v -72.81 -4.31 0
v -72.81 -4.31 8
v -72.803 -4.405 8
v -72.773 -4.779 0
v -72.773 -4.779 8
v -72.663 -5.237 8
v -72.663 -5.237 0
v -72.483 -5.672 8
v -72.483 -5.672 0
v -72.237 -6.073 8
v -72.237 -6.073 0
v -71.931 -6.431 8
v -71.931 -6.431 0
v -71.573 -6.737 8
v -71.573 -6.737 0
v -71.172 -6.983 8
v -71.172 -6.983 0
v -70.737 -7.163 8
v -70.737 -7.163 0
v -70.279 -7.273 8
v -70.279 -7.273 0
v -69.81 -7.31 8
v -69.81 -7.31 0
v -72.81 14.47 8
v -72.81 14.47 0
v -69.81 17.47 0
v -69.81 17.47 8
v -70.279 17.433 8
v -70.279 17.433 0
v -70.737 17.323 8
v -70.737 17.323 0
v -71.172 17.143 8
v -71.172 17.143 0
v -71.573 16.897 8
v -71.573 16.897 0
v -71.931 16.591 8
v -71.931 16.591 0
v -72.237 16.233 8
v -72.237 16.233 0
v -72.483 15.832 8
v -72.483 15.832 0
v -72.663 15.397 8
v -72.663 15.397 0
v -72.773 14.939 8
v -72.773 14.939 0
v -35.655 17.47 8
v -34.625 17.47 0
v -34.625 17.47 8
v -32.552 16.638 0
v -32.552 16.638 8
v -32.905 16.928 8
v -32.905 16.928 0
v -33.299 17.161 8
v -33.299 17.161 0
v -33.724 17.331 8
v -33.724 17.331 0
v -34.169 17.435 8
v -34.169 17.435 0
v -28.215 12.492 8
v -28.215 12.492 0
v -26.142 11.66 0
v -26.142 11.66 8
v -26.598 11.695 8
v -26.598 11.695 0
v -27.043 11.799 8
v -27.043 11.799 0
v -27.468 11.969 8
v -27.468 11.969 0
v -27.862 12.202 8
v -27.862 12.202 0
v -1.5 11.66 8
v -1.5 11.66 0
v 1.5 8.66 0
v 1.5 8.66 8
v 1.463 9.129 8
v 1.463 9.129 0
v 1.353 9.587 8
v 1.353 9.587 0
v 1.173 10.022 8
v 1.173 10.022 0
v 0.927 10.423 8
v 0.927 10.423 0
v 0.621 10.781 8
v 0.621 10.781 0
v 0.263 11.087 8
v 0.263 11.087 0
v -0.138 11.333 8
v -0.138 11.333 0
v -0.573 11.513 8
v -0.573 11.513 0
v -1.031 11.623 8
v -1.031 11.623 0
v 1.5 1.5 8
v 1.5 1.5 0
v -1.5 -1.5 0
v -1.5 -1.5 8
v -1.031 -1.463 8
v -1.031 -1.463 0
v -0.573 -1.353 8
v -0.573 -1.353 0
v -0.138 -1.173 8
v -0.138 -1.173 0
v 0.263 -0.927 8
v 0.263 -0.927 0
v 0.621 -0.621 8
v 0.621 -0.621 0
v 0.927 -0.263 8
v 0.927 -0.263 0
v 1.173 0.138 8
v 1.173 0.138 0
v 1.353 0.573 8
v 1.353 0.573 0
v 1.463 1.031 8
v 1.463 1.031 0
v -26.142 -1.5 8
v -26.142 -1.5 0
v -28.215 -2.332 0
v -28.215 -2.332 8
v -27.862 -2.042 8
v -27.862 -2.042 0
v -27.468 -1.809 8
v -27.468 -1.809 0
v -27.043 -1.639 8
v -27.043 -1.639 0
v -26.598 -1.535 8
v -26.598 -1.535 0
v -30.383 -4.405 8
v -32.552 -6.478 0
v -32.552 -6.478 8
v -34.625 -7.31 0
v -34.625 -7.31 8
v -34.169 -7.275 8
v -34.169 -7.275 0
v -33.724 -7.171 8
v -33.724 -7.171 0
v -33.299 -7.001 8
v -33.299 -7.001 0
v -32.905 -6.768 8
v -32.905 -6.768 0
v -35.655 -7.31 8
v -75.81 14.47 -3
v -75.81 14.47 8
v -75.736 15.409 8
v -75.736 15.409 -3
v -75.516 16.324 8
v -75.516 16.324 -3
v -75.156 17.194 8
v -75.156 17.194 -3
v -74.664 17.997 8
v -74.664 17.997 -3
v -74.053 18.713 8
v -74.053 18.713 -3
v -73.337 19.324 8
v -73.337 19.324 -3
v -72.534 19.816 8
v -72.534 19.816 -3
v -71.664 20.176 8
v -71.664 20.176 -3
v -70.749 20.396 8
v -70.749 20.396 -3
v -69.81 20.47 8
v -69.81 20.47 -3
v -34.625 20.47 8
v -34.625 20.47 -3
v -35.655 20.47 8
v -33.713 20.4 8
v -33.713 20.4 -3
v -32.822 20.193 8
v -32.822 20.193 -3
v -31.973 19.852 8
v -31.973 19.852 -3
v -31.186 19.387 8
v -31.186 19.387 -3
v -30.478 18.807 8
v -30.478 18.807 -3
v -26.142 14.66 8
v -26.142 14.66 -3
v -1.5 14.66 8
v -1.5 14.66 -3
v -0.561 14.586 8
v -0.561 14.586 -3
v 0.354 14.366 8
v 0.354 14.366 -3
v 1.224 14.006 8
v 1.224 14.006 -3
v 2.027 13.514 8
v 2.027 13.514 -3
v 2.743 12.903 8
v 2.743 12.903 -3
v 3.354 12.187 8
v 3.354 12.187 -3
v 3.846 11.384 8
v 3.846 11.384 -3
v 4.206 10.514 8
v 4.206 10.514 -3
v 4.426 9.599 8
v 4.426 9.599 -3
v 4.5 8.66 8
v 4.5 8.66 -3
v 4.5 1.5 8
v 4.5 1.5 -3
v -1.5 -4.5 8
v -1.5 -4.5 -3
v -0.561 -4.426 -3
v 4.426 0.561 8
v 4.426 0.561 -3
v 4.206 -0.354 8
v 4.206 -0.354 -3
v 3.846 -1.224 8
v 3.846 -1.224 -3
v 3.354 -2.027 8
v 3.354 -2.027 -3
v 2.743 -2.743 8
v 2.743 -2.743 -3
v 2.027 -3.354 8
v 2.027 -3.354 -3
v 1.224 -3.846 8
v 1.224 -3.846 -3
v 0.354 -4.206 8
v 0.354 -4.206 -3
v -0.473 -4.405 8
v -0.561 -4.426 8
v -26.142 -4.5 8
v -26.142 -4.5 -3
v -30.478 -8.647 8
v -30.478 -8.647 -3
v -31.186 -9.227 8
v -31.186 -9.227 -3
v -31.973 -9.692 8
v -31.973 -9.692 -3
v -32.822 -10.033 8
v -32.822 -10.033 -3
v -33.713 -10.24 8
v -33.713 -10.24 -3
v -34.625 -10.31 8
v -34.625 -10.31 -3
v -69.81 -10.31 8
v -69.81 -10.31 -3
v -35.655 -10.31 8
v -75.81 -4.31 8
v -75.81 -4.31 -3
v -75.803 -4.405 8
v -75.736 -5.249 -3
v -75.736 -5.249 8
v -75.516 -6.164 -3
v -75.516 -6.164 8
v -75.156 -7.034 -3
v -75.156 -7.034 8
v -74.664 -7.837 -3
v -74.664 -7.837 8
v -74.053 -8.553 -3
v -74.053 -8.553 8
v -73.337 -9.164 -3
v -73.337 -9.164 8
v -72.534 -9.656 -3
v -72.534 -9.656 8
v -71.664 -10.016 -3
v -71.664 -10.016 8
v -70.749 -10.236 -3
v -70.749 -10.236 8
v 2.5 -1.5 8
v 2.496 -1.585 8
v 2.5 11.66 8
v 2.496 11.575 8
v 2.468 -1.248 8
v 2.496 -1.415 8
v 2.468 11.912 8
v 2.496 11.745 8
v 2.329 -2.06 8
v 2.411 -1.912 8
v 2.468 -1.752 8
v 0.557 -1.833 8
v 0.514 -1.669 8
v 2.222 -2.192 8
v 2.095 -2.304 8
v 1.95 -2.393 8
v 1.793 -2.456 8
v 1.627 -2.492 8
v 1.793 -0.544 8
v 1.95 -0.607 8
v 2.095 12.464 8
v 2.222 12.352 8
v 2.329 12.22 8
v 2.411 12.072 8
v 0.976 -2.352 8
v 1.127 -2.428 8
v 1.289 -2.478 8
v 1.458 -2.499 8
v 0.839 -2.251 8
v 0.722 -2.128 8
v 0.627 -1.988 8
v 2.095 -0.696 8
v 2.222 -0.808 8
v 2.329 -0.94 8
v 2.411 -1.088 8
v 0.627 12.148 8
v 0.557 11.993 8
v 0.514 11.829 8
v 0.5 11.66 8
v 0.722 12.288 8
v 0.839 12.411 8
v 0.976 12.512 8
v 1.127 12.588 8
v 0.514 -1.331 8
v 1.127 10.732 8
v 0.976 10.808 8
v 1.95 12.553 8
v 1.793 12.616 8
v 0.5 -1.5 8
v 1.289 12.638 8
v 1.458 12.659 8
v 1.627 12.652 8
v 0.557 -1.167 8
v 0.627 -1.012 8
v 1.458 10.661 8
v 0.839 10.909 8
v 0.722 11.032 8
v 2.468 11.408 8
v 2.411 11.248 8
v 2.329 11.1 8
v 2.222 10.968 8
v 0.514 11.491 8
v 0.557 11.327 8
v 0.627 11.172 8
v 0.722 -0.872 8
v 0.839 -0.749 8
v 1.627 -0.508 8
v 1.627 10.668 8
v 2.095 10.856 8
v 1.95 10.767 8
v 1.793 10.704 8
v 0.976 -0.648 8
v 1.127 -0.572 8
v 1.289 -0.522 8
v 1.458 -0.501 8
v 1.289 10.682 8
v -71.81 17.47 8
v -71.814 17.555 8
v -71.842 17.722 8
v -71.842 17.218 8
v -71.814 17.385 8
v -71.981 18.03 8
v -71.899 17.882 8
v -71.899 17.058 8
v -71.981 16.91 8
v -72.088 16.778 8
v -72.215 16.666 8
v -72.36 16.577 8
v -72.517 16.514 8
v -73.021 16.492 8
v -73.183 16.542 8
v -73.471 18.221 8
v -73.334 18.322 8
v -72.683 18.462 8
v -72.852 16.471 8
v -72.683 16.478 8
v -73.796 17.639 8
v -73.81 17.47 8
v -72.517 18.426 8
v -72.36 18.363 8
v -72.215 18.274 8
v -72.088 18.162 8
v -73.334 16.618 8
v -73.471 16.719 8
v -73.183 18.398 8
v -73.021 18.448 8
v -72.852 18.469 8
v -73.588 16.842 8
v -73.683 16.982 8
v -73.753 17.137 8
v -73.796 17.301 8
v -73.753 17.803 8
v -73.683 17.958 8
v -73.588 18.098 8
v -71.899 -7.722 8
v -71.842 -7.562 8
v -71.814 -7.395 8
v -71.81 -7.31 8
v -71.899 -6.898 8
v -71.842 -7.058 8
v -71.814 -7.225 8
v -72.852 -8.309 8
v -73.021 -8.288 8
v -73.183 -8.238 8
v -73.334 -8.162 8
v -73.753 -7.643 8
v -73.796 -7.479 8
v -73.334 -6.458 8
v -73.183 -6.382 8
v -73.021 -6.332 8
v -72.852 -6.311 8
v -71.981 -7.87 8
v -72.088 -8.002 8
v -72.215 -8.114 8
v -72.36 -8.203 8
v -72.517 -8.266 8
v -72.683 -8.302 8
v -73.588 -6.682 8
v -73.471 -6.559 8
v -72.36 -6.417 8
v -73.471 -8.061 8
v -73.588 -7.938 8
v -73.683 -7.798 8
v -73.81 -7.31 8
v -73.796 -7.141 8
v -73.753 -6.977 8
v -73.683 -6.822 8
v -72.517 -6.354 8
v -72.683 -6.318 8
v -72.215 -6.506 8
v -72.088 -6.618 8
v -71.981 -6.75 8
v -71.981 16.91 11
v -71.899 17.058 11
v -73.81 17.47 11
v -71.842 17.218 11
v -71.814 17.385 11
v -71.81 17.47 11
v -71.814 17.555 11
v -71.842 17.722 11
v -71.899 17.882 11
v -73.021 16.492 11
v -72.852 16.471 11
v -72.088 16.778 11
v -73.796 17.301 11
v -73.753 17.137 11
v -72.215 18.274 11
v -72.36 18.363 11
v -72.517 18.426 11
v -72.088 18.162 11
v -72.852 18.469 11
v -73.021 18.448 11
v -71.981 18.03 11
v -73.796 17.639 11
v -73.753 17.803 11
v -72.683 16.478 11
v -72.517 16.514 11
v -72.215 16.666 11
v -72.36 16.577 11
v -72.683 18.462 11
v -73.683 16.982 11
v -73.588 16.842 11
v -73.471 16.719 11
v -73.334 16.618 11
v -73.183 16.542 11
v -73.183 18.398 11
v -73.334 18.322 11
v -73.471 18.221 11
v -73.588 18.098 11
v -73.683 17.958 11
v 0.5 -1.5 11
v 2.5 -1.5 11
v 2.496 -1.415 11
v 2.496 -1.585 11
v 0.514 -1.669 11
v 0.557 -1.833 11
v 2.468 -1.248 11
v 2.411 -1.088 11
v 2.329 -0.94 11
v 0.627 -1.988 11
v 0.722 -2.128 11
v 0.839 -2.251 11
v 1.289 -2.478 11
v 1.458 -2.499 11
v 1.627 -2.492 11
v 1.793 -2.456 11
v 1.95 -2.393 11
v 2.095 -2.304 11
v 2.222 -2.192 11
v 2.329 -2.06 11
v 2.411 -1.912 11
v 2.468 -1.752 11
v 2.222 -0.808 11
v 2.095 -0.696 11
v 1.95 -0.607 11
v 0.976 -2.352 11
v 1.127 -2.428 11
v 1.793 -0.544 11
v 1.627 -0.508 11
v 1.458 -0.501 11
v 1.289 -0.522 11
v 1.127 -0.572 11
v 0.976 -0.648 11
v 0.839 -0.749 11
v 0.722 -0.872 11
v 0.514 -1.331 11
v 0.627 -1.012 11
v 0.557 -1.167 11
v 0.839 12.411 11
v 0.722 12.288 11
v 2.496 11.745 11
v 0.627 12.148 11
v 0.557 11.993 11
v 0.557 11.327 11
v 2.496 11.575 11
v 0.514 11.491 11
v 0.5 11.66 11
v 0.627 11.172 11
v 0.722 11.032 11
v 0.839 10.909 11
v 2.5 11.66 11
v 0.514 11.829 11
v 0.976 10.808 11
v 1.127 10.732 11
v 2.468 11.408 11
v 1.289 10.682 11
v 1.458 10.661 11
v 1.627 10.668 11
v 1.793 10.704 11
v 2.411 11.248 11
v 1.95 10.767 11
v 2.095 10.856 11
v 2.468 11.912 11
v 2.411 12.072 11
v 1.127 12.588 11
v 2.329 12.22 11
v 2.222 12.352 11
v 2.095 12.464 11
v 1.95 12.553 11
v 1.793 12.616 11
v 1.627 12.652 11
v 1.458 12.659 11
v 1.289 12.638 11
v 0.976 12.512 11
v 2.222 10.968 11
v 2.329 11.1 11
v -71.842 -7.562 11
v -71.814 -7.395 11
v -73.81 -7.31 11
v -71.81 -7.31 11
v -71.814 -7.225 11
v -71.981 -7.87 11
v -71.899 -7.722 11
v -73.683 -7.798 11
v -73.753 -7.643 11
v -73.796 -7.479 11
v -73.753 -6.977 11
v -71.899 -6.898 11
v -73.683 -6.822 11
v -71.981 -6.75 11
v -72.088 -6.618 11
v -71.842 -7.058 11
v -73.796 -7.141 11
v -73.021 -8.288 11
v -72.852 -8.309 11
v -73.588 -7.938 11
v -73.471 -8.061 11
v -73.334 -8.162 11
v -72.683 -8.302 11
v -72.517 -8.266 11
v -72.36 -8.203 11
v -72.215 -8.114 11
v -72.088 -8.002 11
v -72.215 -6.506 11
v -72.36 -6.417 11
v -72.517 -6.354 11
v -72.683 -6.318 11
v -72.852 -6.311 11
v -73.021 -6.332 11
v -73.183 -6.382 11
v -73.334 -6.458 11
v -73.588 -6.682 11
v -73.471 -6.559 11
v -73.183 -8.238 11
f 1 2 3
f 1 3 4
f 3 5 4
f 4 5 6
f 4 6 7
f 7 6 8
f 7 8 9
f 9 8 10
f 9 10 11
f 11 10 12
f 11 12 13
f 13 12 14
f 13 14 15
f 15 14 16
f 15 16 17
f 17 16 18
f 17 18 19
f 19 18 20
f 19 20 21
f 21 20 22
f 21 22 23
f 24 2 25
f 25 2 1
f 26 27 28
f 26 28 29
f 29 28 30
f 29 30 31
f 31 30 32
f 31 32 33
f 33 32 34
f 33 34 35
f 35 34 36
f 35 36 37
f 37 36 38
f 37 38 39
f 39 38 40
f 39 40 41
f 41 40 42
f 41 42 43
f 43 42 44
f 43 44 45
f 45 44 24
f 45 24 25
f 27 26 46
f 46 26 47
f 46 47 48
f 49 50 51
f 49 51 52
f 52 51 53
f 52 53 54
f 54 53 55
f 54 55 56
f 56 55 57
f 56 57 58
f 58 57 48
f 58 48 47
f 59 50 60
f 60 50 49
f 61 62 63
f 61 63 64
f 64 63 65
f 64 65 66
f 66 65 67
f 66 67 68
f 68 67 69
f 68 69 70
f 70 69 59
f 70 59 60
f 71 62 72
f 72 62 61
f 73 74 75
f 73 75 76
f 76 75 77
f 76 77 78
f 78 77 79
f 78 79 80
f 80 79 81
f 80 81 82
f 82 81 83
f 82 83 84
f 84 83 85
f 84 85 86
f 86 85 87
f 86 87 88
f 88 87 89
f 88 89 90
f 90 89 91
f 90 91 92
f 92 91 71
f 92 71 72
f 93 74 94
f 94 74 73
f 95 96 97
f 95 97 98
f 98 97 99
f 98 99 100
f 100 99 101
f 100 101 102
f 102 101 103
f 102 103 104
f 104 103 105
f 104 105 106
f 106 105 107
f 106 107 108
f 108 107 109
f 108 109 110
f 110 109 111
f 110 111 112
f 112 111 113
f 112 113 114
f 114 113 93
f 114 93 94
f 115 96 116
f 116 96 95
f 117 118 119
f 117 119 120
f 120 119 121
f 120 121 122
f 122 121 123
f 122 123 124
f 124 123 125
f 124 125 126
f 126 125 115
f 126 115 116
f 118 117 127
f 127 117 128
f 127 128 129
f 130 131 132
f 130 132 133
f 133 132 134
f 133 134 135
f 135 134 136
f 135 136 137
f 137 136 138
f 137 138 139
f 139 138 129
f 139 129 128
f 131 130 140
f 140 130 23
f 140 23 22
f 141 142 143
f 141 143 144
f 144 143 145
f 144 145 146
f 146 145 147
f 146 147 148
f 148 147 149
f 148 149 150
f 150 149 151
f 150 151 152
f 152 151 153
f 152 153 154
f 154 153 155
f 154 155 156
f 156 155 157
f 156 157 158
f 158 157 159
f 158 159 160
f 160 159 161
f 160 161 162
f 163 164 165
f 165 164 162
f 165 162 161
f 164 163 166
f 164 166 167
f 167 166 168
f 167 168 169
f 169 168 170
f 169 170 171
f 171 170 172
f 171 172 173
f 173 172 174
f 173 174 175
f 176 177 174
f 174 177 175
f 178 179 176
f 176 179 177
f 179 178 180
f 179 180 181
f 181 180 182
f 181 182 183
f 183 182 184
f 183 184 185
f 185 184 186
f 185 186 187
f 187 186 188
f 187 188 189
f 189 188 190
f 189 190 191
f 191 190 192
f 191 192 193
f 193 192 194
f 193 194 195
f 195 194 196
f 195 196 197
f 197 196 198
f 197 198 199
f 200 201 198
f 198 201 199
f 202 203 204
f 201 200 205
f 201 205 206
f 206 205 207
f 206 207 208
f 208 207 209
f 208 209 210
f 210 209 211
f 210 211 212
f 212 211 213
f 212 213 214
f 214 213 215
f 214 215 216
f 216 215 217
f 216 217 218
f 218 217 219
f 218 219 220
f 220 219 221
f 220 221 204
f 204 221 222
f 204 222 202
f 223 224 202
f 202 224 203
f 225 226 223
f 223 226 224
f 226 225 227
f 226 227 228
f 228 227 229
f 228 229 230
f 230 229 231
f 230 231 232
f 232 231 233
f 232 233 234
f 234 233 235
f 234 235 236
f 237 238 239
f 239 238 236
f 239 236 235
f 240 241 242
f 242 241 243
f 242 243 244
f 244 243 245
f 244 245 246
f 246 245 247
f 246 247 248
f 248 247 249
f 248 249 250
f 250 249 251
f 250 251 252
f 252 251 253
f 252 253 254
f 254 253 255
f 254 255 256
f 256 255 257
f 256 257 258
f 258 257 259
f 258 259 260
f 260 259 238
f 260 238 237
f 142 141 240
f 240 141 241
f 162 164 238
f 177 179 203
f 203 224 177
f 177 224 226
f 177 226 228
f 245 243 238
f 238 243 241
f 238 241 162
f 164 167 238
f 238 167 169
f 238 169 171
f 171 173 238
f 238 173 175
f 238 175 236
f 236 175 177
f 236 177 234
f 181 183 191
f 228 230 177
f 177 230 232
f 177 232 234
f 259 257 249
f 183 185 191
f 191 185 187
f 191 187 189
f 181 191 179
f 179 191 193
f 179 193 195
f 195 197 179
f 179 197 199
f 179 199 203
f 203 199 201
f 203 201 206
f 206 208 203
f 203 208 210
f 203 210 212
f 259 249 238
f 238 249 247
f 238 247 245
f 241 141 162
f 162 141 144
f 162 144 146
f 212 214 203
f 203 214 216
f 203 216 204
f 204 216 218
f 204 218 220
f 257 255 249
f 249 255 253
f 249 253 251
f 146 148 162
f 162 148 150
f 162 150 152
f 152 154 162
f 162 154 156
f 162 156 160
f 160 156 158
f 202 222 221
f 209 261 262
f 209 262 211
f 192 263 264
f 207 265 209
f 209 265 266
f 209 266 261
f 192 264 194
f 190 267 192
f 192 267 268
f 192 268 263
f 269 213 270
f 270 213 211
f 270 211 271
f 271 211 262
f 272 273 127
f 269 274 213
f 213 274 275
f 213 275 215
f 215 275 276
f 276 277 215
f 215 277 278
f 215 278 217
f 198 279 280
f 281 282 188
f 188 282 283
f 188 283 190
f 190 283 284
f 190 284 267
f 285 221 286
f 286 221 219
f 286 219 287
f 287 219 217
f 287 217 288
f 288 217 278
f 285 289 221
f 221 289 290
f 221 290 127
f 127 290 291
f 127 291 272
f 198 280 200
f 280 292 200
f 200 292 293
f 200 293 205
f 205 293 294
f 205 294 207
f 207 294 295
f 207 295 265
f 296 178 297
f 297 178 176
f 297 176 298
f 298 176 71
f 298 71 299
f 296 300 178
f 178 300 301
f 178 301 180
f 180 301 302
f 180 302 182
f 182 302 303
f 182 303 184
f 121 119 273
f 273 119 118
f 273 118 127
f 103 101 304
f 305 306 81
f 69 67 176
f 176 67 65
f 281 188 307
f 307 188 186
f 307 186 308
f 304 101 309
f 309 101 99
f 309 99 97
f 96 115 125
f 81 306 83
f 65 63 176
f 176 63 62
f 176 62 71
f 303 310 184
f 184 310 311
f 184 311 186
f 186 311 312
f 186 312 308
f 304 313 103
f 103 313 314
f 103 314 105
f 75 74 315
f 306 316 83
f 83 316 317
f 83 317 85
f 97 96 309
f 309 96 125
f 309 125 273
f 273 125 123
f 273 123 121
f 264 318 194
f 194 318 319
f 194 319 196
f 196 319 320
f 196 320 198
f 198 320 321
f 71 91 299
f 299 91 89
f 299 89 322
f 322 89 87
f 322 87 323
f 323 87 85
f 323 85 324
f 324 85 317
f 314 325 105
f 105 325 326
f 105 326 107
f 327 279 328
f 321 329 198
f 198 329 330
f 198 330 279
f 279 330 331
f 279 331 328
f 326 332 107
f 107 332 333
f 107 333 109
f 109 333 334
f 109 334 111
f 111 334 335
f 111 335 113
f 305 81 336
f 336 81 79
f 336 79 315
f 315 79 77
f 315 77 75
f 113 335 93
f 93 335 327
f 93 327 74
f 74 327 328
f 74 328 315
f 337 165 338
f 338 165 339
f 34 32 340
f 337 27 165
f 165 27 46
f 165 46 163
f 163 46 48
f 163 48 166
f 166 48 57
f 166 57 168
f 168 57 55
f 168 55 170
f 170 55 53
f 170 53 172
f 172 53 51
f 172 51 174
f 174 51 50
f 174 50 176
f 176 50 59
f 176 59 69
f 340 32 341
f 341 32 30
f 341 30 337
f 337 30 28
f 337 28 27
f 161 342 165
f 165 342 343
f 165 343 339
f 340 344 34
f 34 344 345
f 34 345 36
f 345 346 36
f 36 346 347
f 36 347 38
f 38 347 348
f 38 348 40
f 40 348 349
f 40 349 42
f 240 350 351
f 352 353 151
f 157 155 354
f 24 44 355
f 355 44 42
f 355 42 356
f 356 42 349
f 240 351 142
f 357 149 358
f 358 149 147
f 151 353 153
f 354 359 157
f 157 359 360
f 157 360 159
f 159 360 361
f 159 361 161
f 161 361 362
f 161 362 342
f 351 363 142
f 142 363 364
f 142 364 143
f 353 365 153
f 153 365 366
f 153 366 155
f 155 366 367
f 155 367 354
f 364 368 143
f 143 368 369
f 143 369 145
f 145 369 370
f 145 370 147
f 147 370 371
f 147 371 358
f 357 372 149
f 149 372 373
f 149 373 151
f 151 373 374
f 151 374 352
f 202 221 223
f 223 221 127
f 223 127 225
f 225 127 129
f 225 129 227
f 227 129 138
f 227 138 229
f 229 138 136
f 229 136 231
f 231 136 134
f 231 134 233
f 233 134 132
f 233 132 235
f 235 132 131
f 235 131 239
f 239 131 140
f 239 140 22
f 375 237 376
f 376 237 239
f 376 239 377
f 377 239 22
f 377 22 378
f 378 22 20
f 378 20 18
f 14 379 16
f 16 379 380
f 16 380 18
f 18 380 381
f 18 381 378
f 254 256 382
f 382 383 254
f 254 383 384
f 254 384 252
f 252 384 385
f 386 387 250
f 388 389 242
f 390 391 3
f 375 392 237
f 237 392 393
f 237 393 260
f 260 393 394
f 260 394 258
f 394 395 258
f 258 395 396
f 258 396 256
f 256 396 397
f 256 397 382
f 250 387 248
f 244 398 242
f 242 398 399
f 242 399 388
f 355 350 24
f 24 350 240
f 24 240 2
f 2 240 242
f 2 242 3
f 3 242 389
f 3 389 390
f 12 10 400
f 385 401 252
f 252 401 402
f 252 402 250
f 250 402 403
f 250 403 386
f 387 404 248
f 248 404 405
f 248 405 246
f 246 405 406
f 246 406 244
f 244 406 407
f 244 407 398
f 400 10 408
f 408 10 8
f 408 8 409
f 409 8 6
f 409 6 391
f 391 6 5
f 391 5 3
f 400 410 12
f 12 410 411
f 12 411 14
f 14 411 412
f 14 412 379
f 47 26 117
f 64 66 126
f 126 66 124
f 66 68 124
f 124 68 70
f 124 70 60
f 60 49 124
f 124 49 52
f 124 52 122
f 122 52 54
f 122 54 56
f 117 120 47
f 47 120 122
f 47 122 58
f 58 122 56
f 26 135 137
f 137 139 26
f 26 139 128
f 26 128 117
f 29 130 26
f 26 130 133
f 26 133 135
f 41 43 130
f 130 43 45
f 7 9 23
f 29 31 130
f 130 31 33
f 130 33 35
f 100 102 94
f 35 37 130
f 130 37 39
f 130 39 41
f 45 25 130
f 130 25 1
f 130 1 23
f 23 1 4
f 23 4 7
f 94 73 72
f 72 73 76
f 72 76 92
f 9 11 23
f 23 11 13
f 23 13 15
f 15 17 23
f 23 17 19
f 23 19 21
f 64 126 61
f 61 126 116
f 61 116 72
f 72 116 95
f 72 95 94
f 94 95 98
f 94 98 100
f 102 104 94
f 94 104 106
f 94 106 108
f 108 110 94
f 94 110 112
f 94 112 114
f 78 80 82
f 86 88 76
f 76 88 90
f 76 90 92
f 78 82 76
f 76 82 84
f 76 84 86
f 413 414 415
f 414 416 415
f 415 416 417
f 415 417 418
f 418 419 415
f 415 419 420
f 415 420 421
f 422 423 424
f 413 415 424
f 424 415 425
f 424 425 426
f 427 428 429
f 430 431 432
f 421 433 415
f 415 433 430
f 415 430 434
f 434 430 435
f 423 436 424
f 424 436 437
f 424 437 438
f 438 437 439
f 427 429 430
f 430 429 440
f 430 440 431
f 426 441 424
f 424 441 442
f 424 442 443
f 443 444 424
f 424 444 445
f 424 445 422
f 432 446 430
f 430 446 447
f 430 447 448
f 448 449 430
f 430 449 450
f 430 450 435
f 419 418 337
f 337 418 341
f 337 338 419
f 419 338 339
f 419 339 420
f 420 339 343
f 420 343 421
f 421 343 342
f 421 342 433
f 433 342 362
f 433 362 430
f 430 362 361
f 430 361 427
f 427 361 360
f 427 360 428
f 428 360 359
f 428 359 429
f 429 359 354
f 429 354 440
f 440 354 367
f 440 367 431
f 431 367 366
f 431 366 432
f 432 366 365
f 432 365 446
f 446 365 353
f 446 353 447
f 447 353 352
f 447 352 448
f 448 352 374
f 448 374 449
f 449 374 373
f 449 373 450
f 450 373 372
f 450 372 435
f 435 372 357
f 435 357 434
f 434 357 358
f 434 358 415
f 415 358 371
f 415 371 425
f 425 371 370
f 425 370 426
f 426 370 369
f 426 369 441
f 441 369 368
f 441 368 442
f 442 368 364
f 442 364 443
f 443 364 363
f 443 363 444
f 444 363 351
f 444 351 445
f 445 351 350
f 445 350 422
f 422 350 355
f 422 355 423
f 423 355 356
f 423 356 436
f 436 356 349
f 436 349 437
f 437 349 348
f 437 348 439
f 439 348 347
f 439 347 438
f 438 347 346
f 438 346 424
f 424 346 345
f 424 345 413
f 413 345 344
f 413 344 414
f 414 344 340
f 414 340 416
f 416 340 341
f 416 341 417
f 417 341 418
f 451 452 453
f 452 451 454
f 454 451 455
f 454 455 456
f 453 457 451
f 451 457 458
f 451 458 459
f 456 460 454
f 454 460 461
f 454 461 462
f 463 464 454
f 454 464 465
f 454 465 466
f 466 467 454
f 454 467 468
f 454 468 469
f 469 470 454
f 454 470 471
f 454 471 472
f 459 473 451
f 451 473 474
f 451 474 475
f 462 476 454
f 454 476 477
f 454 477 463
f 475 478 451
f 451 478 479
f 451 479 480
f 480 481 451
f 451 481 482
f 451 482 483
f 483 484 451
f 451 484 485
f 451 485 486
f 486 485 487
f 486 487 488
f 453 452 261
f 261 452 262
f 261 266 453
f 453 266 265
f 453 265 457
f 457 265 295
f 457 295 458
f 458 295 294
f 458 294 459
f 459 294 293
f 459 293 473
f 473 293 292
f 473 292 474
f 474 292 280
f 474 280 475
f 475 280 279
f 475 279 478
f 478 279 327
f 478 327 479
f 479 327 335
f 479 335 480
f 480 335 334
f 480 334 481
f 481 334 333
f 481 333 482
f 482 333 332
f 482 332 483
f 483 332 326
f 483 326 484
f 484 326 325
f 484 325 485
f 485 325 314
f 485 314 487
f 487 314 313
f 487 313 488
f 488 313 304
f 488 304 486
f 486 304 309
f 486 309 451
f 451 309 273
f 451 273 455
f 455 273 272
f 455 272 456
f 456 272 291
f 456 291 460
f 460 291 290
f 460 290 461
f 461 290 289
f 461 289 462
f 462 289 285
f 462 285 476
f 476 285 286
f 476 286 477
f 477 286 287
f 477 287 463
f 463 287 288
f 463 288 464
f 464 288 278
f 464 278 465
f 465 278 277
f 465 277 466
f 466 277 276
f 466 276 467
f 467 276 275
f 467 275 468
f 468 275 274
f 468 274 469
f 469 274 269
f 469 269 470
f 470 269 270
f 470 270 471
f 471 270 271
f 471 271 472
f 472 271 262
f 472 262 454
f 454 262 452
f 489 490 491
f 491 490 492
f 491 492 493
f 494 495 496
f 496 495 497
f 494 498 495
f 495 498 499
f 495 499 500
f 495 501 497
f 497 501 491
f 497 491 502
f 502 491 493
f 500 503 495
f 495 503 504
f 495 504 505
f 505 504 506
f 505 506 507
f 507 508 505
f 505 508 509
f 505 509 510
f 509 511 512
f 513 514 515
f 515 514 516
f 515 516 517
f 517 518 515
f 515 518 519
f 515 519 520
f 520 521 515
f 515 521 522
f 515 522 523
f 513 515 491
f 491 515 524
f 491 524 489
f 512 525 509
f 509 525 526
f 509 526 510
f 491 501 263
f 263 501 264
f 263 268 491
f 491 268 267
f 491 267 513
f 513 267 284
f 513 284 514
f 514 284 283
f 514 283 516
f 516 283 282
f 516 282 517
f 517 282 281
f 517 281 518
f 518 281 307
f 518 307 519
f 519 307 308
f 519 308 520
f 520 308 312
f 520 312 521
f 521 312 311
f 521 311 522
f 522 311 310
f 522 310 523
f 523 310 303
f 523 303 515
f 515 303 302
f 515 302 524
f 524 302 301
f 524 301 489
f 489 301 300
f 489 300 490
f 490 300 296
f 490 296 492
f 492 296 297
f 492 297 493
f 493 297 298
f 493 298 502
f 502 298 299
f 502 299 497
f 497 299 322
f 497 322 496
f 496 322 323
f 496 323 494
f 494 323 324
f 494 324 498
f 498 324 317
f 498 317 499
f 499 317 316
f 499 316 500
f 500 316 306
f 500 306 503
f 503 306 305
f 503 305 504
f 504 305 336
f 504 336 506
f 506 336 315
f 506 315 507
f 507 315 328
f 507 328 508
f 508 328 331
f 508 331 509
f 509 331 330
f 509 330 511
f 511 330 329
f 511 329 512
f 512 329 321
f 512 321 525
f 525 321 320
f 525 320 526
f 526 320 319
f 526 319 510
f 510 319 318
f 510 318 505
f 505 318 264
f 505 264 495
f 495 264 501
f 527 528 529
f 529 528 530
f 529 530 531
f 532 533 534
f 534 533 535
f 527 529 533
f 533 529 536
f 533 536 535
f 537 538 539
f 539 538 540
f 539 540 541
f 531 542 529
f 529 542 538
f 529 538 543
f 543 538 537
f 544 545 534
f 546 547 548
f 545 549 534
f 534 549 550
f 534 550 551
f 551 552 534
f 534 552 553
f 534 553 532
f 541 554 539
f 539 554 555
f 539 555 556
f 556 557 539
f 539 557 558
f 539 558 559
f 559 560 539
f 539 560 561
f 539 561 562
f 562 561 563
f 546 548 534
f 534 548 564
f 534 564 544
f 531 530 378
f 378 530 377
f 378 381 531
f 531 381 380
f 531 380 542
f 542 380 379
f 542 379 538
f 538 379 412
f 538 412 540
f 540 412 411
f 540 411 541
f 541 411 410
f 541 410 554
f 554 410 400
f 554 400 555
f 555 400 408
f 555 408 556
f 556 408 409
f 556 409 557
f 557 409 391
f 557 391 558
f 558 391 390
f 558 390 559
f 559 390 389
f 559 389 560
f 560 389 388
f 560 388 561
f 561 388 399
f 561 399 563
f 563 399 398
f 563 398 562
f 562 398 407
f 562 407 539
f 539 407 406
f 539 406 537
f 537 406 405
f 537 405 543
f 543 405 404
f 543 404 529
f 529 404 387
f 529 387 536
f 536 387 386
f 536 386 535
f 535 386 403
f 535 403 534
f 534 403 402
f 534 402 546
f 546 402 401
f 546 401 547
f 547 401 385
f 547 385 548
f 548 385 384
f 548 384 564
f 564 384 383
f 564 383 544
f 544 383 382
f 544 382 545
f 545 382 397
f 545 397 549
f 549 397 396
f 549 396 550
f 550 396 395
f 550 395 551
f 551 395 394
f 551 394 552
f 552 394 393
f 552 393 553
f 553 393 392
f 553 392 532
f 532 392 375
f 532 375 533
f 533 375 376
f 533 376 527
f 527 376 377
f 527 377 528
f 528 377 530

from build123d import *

# Parameters (mm, degrees)
SKETCH3_R                = 1
BOSS_EXTRUDE2_DEPTH      = 8
BOSS_EXTRUDE2_DEPTH_BACK = 3
BOSS_EXTRUDE3_DEPTH      = 3
SKETCH7_R                = 1
BOSS_EXTRUDE4_DEPTH      = 3
BOSS_EXTRUDE4_DEPTH_BACK = 11


with BuildPart() as part:
    # Sketch3 → Boss-Extrude2 (new, two sides)
    with BuildSketch(Plane.XY) as boss_extrude2_sk:
        with BuildLine():
            Line((-69.81, 20.47), (-34.625063383, 20.47))
            ThreePointArc((-34.625063383, 20.47), (-32.391172348, 20.03863815), (-30.478486436, 18.806576947))
            Line((-30.478486436, 18.806576947), (-26.141909489, 14.66))
            Line((-26.141909489, 14.66), (-1.5, 14.66))
            ThreePointArc((-1.5, 14.66), (2.742640687, 12.902640687), (4.5, 8.66))
            Line((4.5, 8.66), (4.5, 1.5))
            ThreePointArc((4.5, 1.5), (2.742640687, -2.742640687), (-1.5, -4.5))
            Line((-1.5, -4.5), (-26.141909489, -4.5))
            Line((-26.141909489, -4.5), (-30.478486436, -8.646576947))
            ThreePointArc((-30.478486436, -8.646576947), (-32.391172348, -9.87863815), (-34.625063383, -10.31))
            Line((-34.625063383, -10.31), (-69.81, -10.31))
            ThreePointArc((-69.81, -10.31), (-74.052640687, -8.552640687), (-75.81, -4.31))
            Line((-75.81, -4.31), (-75.81, 14.47))
            ThreePointArc((-75.81, 14.47), (-74.052640687, 18.712640687), (-69.81, 20.47))
        make_face()
        with Locations((-72.81, 17.47)):
            Circle(SKETCH3_R, mode=Mode.SUBTRACT)
        with Locations((-72.81, -7.31)):
            Circle(SKETCH3_R, mode=Mode.SUBTRACT)
        with Locations((1.5, -1.5)):
            Circle(SKETCH3_R, mode=Mode.SUBTRACT)
        with Locations((1.5, 11.66)):
            Circle(SKETCH3_R, mode=Mode.SUBTRACT)
        with BuildLine():
            Line((-69.81, 17.47), (-34.625063383, 17.47))
            ThreePointArc((-34.625063383, 17.47), (-33.508117866, 17.254319075), (-32.55177491, 16.638288474))
            Line((-32.55177491, 16.638288474), (-28.215197962, 12.491711526))
            ThreePointArc((-28.215197962, 12.491711526), (-27.258855006, 11.875680925), (-26.141909489, 11.66))
            Line((-26.141909489, 11.66), (-1.5, 11.66))
            ThreePointArc((-1.5, 11.66), (0.621320344, 10.781320344), (1.5, 8.66))
            Line((1.5, 8.66), (1.5, 1.5))
            ThreePointArc((1.5, 1.5), (0.621320344, -0.621320344), (-1.5, -1.5))
            Line((-1.5, -1.5), (-26.141909489, -1.5))
            ThreePointArc((-26.141909489, -1.5), (-27.258855006, -1.715680925), (-28.215197962, -2.331711526))
            Line((-28.215197962, -2.331711526), (-32.55177491, -6.478288474))
            ThreePointArc((-32.55177491, -6.478288474), (-33.508117866, -7.094319075), (-34.625063383, -7.31))
            Line((-34.625063383, -7.31), (-69.81, -7.31))
            ThreePointArc((-69.81, -7.31), (-71.931320344, -6.431320344), (-72.81, -4.31))
            Line((-72.81, -4.31), (-72.81, 14.47))
            ThreePointArc((-72.81, 14.47), (-71.931320344, 16.591320344), (-69.81, 17.47))
        make_face(mode=Mode.SUBTRACT)
    extrude(amount=BOSS_EXTRUDE2_DEPTH)
    extrude(boss_extrude2_sk.sketch, amount=-BOSS_EXTRUDE2_DEPTH_BACK)

    # Sketch5 → Boss-Extrude3 (add)
    with BuildSketch(Plane(origin=(0, 0, -3), x_dir=(-1, 0, 0), z_dir=(0, 0, -1))):
        with BuildLine():
            Line((72.81, 14.47), (72.81, -4.31))
            ThreePointArc((72.81, -4.31), (71.931320344, -6.431320344), (69.81, -7.31))
            Line((69.81, -7.31), (34.625063383, -7.31))
            ThreePointArc((34.625063383, -7.31), (33.508117866, -7.094319075), (32.55177491, -6.478288474))
            Line((32.55177491, -6.478288474), (28.215197962, -2.331711526))
            ThreePointArc((28.215197962, -2.331711526), (27.258855006, -1.715680925), (26.141909489, -1.5))
            Line((26.141909489, -1.5), (1.5, -1.5))
            ThreePointArc((1.5, -1.5), (-0.621320344, -0.621320344), (-1.5, 1.5))
            Line((-1.5, 1.5), (-1.5, 8.66))
            ThreePointArc((-1.5, 8.66), (-0.621320344, 10.781320344), (1.5, 11.66))
            Line((1.5, 11.66), (26.141909489, 11.66))
            ThreePointArc((26.141909489, 11.66), (27.258855006, 11.875680925), (28.215197962, 12.491711526))
            Line((28.215197962, 12.491711526), (32.55177491, 16.638288474))
            ThreePointArc((32.55177491, 16.638288474), (33.508117866, 17.254319075), (34.625063383, 17.47))
            Line((34.625063383, 17.47), (69.81, 17.47))
            ThreePointArc((69.81, 17.47), (71.931320344, 16.591320344), (72.81, 14.47))
        make_face()
    extrude(amount=-BOSS_EXTRUDE3_DEPTH)

    # Sketch7 → Boss-Extrude4 (add, two sides)
    with BuildSketch(Plane.XY.offset(8)) as boss_extrude4_sk:
        with Locations((-72.81, 17.47)):
            Circle(SKETCH7_R)
        with Locations((1.5, -1.5)):
            Circle(SKETCH7_R)
        with Locations((1.5, 11.66)):
            Circle(SKETCH7_R)
        with Locations((-72.81, -7.31)):
            Circle(SKETCH7_R)
    extrude(amount=BOSS_EXTRUDE4_DEPTH)
    extrude(boss_extrude4_sk.sketch, amount=-BOSS_EXTRUDE4_DEPTH_BACK)


solid = part.part
